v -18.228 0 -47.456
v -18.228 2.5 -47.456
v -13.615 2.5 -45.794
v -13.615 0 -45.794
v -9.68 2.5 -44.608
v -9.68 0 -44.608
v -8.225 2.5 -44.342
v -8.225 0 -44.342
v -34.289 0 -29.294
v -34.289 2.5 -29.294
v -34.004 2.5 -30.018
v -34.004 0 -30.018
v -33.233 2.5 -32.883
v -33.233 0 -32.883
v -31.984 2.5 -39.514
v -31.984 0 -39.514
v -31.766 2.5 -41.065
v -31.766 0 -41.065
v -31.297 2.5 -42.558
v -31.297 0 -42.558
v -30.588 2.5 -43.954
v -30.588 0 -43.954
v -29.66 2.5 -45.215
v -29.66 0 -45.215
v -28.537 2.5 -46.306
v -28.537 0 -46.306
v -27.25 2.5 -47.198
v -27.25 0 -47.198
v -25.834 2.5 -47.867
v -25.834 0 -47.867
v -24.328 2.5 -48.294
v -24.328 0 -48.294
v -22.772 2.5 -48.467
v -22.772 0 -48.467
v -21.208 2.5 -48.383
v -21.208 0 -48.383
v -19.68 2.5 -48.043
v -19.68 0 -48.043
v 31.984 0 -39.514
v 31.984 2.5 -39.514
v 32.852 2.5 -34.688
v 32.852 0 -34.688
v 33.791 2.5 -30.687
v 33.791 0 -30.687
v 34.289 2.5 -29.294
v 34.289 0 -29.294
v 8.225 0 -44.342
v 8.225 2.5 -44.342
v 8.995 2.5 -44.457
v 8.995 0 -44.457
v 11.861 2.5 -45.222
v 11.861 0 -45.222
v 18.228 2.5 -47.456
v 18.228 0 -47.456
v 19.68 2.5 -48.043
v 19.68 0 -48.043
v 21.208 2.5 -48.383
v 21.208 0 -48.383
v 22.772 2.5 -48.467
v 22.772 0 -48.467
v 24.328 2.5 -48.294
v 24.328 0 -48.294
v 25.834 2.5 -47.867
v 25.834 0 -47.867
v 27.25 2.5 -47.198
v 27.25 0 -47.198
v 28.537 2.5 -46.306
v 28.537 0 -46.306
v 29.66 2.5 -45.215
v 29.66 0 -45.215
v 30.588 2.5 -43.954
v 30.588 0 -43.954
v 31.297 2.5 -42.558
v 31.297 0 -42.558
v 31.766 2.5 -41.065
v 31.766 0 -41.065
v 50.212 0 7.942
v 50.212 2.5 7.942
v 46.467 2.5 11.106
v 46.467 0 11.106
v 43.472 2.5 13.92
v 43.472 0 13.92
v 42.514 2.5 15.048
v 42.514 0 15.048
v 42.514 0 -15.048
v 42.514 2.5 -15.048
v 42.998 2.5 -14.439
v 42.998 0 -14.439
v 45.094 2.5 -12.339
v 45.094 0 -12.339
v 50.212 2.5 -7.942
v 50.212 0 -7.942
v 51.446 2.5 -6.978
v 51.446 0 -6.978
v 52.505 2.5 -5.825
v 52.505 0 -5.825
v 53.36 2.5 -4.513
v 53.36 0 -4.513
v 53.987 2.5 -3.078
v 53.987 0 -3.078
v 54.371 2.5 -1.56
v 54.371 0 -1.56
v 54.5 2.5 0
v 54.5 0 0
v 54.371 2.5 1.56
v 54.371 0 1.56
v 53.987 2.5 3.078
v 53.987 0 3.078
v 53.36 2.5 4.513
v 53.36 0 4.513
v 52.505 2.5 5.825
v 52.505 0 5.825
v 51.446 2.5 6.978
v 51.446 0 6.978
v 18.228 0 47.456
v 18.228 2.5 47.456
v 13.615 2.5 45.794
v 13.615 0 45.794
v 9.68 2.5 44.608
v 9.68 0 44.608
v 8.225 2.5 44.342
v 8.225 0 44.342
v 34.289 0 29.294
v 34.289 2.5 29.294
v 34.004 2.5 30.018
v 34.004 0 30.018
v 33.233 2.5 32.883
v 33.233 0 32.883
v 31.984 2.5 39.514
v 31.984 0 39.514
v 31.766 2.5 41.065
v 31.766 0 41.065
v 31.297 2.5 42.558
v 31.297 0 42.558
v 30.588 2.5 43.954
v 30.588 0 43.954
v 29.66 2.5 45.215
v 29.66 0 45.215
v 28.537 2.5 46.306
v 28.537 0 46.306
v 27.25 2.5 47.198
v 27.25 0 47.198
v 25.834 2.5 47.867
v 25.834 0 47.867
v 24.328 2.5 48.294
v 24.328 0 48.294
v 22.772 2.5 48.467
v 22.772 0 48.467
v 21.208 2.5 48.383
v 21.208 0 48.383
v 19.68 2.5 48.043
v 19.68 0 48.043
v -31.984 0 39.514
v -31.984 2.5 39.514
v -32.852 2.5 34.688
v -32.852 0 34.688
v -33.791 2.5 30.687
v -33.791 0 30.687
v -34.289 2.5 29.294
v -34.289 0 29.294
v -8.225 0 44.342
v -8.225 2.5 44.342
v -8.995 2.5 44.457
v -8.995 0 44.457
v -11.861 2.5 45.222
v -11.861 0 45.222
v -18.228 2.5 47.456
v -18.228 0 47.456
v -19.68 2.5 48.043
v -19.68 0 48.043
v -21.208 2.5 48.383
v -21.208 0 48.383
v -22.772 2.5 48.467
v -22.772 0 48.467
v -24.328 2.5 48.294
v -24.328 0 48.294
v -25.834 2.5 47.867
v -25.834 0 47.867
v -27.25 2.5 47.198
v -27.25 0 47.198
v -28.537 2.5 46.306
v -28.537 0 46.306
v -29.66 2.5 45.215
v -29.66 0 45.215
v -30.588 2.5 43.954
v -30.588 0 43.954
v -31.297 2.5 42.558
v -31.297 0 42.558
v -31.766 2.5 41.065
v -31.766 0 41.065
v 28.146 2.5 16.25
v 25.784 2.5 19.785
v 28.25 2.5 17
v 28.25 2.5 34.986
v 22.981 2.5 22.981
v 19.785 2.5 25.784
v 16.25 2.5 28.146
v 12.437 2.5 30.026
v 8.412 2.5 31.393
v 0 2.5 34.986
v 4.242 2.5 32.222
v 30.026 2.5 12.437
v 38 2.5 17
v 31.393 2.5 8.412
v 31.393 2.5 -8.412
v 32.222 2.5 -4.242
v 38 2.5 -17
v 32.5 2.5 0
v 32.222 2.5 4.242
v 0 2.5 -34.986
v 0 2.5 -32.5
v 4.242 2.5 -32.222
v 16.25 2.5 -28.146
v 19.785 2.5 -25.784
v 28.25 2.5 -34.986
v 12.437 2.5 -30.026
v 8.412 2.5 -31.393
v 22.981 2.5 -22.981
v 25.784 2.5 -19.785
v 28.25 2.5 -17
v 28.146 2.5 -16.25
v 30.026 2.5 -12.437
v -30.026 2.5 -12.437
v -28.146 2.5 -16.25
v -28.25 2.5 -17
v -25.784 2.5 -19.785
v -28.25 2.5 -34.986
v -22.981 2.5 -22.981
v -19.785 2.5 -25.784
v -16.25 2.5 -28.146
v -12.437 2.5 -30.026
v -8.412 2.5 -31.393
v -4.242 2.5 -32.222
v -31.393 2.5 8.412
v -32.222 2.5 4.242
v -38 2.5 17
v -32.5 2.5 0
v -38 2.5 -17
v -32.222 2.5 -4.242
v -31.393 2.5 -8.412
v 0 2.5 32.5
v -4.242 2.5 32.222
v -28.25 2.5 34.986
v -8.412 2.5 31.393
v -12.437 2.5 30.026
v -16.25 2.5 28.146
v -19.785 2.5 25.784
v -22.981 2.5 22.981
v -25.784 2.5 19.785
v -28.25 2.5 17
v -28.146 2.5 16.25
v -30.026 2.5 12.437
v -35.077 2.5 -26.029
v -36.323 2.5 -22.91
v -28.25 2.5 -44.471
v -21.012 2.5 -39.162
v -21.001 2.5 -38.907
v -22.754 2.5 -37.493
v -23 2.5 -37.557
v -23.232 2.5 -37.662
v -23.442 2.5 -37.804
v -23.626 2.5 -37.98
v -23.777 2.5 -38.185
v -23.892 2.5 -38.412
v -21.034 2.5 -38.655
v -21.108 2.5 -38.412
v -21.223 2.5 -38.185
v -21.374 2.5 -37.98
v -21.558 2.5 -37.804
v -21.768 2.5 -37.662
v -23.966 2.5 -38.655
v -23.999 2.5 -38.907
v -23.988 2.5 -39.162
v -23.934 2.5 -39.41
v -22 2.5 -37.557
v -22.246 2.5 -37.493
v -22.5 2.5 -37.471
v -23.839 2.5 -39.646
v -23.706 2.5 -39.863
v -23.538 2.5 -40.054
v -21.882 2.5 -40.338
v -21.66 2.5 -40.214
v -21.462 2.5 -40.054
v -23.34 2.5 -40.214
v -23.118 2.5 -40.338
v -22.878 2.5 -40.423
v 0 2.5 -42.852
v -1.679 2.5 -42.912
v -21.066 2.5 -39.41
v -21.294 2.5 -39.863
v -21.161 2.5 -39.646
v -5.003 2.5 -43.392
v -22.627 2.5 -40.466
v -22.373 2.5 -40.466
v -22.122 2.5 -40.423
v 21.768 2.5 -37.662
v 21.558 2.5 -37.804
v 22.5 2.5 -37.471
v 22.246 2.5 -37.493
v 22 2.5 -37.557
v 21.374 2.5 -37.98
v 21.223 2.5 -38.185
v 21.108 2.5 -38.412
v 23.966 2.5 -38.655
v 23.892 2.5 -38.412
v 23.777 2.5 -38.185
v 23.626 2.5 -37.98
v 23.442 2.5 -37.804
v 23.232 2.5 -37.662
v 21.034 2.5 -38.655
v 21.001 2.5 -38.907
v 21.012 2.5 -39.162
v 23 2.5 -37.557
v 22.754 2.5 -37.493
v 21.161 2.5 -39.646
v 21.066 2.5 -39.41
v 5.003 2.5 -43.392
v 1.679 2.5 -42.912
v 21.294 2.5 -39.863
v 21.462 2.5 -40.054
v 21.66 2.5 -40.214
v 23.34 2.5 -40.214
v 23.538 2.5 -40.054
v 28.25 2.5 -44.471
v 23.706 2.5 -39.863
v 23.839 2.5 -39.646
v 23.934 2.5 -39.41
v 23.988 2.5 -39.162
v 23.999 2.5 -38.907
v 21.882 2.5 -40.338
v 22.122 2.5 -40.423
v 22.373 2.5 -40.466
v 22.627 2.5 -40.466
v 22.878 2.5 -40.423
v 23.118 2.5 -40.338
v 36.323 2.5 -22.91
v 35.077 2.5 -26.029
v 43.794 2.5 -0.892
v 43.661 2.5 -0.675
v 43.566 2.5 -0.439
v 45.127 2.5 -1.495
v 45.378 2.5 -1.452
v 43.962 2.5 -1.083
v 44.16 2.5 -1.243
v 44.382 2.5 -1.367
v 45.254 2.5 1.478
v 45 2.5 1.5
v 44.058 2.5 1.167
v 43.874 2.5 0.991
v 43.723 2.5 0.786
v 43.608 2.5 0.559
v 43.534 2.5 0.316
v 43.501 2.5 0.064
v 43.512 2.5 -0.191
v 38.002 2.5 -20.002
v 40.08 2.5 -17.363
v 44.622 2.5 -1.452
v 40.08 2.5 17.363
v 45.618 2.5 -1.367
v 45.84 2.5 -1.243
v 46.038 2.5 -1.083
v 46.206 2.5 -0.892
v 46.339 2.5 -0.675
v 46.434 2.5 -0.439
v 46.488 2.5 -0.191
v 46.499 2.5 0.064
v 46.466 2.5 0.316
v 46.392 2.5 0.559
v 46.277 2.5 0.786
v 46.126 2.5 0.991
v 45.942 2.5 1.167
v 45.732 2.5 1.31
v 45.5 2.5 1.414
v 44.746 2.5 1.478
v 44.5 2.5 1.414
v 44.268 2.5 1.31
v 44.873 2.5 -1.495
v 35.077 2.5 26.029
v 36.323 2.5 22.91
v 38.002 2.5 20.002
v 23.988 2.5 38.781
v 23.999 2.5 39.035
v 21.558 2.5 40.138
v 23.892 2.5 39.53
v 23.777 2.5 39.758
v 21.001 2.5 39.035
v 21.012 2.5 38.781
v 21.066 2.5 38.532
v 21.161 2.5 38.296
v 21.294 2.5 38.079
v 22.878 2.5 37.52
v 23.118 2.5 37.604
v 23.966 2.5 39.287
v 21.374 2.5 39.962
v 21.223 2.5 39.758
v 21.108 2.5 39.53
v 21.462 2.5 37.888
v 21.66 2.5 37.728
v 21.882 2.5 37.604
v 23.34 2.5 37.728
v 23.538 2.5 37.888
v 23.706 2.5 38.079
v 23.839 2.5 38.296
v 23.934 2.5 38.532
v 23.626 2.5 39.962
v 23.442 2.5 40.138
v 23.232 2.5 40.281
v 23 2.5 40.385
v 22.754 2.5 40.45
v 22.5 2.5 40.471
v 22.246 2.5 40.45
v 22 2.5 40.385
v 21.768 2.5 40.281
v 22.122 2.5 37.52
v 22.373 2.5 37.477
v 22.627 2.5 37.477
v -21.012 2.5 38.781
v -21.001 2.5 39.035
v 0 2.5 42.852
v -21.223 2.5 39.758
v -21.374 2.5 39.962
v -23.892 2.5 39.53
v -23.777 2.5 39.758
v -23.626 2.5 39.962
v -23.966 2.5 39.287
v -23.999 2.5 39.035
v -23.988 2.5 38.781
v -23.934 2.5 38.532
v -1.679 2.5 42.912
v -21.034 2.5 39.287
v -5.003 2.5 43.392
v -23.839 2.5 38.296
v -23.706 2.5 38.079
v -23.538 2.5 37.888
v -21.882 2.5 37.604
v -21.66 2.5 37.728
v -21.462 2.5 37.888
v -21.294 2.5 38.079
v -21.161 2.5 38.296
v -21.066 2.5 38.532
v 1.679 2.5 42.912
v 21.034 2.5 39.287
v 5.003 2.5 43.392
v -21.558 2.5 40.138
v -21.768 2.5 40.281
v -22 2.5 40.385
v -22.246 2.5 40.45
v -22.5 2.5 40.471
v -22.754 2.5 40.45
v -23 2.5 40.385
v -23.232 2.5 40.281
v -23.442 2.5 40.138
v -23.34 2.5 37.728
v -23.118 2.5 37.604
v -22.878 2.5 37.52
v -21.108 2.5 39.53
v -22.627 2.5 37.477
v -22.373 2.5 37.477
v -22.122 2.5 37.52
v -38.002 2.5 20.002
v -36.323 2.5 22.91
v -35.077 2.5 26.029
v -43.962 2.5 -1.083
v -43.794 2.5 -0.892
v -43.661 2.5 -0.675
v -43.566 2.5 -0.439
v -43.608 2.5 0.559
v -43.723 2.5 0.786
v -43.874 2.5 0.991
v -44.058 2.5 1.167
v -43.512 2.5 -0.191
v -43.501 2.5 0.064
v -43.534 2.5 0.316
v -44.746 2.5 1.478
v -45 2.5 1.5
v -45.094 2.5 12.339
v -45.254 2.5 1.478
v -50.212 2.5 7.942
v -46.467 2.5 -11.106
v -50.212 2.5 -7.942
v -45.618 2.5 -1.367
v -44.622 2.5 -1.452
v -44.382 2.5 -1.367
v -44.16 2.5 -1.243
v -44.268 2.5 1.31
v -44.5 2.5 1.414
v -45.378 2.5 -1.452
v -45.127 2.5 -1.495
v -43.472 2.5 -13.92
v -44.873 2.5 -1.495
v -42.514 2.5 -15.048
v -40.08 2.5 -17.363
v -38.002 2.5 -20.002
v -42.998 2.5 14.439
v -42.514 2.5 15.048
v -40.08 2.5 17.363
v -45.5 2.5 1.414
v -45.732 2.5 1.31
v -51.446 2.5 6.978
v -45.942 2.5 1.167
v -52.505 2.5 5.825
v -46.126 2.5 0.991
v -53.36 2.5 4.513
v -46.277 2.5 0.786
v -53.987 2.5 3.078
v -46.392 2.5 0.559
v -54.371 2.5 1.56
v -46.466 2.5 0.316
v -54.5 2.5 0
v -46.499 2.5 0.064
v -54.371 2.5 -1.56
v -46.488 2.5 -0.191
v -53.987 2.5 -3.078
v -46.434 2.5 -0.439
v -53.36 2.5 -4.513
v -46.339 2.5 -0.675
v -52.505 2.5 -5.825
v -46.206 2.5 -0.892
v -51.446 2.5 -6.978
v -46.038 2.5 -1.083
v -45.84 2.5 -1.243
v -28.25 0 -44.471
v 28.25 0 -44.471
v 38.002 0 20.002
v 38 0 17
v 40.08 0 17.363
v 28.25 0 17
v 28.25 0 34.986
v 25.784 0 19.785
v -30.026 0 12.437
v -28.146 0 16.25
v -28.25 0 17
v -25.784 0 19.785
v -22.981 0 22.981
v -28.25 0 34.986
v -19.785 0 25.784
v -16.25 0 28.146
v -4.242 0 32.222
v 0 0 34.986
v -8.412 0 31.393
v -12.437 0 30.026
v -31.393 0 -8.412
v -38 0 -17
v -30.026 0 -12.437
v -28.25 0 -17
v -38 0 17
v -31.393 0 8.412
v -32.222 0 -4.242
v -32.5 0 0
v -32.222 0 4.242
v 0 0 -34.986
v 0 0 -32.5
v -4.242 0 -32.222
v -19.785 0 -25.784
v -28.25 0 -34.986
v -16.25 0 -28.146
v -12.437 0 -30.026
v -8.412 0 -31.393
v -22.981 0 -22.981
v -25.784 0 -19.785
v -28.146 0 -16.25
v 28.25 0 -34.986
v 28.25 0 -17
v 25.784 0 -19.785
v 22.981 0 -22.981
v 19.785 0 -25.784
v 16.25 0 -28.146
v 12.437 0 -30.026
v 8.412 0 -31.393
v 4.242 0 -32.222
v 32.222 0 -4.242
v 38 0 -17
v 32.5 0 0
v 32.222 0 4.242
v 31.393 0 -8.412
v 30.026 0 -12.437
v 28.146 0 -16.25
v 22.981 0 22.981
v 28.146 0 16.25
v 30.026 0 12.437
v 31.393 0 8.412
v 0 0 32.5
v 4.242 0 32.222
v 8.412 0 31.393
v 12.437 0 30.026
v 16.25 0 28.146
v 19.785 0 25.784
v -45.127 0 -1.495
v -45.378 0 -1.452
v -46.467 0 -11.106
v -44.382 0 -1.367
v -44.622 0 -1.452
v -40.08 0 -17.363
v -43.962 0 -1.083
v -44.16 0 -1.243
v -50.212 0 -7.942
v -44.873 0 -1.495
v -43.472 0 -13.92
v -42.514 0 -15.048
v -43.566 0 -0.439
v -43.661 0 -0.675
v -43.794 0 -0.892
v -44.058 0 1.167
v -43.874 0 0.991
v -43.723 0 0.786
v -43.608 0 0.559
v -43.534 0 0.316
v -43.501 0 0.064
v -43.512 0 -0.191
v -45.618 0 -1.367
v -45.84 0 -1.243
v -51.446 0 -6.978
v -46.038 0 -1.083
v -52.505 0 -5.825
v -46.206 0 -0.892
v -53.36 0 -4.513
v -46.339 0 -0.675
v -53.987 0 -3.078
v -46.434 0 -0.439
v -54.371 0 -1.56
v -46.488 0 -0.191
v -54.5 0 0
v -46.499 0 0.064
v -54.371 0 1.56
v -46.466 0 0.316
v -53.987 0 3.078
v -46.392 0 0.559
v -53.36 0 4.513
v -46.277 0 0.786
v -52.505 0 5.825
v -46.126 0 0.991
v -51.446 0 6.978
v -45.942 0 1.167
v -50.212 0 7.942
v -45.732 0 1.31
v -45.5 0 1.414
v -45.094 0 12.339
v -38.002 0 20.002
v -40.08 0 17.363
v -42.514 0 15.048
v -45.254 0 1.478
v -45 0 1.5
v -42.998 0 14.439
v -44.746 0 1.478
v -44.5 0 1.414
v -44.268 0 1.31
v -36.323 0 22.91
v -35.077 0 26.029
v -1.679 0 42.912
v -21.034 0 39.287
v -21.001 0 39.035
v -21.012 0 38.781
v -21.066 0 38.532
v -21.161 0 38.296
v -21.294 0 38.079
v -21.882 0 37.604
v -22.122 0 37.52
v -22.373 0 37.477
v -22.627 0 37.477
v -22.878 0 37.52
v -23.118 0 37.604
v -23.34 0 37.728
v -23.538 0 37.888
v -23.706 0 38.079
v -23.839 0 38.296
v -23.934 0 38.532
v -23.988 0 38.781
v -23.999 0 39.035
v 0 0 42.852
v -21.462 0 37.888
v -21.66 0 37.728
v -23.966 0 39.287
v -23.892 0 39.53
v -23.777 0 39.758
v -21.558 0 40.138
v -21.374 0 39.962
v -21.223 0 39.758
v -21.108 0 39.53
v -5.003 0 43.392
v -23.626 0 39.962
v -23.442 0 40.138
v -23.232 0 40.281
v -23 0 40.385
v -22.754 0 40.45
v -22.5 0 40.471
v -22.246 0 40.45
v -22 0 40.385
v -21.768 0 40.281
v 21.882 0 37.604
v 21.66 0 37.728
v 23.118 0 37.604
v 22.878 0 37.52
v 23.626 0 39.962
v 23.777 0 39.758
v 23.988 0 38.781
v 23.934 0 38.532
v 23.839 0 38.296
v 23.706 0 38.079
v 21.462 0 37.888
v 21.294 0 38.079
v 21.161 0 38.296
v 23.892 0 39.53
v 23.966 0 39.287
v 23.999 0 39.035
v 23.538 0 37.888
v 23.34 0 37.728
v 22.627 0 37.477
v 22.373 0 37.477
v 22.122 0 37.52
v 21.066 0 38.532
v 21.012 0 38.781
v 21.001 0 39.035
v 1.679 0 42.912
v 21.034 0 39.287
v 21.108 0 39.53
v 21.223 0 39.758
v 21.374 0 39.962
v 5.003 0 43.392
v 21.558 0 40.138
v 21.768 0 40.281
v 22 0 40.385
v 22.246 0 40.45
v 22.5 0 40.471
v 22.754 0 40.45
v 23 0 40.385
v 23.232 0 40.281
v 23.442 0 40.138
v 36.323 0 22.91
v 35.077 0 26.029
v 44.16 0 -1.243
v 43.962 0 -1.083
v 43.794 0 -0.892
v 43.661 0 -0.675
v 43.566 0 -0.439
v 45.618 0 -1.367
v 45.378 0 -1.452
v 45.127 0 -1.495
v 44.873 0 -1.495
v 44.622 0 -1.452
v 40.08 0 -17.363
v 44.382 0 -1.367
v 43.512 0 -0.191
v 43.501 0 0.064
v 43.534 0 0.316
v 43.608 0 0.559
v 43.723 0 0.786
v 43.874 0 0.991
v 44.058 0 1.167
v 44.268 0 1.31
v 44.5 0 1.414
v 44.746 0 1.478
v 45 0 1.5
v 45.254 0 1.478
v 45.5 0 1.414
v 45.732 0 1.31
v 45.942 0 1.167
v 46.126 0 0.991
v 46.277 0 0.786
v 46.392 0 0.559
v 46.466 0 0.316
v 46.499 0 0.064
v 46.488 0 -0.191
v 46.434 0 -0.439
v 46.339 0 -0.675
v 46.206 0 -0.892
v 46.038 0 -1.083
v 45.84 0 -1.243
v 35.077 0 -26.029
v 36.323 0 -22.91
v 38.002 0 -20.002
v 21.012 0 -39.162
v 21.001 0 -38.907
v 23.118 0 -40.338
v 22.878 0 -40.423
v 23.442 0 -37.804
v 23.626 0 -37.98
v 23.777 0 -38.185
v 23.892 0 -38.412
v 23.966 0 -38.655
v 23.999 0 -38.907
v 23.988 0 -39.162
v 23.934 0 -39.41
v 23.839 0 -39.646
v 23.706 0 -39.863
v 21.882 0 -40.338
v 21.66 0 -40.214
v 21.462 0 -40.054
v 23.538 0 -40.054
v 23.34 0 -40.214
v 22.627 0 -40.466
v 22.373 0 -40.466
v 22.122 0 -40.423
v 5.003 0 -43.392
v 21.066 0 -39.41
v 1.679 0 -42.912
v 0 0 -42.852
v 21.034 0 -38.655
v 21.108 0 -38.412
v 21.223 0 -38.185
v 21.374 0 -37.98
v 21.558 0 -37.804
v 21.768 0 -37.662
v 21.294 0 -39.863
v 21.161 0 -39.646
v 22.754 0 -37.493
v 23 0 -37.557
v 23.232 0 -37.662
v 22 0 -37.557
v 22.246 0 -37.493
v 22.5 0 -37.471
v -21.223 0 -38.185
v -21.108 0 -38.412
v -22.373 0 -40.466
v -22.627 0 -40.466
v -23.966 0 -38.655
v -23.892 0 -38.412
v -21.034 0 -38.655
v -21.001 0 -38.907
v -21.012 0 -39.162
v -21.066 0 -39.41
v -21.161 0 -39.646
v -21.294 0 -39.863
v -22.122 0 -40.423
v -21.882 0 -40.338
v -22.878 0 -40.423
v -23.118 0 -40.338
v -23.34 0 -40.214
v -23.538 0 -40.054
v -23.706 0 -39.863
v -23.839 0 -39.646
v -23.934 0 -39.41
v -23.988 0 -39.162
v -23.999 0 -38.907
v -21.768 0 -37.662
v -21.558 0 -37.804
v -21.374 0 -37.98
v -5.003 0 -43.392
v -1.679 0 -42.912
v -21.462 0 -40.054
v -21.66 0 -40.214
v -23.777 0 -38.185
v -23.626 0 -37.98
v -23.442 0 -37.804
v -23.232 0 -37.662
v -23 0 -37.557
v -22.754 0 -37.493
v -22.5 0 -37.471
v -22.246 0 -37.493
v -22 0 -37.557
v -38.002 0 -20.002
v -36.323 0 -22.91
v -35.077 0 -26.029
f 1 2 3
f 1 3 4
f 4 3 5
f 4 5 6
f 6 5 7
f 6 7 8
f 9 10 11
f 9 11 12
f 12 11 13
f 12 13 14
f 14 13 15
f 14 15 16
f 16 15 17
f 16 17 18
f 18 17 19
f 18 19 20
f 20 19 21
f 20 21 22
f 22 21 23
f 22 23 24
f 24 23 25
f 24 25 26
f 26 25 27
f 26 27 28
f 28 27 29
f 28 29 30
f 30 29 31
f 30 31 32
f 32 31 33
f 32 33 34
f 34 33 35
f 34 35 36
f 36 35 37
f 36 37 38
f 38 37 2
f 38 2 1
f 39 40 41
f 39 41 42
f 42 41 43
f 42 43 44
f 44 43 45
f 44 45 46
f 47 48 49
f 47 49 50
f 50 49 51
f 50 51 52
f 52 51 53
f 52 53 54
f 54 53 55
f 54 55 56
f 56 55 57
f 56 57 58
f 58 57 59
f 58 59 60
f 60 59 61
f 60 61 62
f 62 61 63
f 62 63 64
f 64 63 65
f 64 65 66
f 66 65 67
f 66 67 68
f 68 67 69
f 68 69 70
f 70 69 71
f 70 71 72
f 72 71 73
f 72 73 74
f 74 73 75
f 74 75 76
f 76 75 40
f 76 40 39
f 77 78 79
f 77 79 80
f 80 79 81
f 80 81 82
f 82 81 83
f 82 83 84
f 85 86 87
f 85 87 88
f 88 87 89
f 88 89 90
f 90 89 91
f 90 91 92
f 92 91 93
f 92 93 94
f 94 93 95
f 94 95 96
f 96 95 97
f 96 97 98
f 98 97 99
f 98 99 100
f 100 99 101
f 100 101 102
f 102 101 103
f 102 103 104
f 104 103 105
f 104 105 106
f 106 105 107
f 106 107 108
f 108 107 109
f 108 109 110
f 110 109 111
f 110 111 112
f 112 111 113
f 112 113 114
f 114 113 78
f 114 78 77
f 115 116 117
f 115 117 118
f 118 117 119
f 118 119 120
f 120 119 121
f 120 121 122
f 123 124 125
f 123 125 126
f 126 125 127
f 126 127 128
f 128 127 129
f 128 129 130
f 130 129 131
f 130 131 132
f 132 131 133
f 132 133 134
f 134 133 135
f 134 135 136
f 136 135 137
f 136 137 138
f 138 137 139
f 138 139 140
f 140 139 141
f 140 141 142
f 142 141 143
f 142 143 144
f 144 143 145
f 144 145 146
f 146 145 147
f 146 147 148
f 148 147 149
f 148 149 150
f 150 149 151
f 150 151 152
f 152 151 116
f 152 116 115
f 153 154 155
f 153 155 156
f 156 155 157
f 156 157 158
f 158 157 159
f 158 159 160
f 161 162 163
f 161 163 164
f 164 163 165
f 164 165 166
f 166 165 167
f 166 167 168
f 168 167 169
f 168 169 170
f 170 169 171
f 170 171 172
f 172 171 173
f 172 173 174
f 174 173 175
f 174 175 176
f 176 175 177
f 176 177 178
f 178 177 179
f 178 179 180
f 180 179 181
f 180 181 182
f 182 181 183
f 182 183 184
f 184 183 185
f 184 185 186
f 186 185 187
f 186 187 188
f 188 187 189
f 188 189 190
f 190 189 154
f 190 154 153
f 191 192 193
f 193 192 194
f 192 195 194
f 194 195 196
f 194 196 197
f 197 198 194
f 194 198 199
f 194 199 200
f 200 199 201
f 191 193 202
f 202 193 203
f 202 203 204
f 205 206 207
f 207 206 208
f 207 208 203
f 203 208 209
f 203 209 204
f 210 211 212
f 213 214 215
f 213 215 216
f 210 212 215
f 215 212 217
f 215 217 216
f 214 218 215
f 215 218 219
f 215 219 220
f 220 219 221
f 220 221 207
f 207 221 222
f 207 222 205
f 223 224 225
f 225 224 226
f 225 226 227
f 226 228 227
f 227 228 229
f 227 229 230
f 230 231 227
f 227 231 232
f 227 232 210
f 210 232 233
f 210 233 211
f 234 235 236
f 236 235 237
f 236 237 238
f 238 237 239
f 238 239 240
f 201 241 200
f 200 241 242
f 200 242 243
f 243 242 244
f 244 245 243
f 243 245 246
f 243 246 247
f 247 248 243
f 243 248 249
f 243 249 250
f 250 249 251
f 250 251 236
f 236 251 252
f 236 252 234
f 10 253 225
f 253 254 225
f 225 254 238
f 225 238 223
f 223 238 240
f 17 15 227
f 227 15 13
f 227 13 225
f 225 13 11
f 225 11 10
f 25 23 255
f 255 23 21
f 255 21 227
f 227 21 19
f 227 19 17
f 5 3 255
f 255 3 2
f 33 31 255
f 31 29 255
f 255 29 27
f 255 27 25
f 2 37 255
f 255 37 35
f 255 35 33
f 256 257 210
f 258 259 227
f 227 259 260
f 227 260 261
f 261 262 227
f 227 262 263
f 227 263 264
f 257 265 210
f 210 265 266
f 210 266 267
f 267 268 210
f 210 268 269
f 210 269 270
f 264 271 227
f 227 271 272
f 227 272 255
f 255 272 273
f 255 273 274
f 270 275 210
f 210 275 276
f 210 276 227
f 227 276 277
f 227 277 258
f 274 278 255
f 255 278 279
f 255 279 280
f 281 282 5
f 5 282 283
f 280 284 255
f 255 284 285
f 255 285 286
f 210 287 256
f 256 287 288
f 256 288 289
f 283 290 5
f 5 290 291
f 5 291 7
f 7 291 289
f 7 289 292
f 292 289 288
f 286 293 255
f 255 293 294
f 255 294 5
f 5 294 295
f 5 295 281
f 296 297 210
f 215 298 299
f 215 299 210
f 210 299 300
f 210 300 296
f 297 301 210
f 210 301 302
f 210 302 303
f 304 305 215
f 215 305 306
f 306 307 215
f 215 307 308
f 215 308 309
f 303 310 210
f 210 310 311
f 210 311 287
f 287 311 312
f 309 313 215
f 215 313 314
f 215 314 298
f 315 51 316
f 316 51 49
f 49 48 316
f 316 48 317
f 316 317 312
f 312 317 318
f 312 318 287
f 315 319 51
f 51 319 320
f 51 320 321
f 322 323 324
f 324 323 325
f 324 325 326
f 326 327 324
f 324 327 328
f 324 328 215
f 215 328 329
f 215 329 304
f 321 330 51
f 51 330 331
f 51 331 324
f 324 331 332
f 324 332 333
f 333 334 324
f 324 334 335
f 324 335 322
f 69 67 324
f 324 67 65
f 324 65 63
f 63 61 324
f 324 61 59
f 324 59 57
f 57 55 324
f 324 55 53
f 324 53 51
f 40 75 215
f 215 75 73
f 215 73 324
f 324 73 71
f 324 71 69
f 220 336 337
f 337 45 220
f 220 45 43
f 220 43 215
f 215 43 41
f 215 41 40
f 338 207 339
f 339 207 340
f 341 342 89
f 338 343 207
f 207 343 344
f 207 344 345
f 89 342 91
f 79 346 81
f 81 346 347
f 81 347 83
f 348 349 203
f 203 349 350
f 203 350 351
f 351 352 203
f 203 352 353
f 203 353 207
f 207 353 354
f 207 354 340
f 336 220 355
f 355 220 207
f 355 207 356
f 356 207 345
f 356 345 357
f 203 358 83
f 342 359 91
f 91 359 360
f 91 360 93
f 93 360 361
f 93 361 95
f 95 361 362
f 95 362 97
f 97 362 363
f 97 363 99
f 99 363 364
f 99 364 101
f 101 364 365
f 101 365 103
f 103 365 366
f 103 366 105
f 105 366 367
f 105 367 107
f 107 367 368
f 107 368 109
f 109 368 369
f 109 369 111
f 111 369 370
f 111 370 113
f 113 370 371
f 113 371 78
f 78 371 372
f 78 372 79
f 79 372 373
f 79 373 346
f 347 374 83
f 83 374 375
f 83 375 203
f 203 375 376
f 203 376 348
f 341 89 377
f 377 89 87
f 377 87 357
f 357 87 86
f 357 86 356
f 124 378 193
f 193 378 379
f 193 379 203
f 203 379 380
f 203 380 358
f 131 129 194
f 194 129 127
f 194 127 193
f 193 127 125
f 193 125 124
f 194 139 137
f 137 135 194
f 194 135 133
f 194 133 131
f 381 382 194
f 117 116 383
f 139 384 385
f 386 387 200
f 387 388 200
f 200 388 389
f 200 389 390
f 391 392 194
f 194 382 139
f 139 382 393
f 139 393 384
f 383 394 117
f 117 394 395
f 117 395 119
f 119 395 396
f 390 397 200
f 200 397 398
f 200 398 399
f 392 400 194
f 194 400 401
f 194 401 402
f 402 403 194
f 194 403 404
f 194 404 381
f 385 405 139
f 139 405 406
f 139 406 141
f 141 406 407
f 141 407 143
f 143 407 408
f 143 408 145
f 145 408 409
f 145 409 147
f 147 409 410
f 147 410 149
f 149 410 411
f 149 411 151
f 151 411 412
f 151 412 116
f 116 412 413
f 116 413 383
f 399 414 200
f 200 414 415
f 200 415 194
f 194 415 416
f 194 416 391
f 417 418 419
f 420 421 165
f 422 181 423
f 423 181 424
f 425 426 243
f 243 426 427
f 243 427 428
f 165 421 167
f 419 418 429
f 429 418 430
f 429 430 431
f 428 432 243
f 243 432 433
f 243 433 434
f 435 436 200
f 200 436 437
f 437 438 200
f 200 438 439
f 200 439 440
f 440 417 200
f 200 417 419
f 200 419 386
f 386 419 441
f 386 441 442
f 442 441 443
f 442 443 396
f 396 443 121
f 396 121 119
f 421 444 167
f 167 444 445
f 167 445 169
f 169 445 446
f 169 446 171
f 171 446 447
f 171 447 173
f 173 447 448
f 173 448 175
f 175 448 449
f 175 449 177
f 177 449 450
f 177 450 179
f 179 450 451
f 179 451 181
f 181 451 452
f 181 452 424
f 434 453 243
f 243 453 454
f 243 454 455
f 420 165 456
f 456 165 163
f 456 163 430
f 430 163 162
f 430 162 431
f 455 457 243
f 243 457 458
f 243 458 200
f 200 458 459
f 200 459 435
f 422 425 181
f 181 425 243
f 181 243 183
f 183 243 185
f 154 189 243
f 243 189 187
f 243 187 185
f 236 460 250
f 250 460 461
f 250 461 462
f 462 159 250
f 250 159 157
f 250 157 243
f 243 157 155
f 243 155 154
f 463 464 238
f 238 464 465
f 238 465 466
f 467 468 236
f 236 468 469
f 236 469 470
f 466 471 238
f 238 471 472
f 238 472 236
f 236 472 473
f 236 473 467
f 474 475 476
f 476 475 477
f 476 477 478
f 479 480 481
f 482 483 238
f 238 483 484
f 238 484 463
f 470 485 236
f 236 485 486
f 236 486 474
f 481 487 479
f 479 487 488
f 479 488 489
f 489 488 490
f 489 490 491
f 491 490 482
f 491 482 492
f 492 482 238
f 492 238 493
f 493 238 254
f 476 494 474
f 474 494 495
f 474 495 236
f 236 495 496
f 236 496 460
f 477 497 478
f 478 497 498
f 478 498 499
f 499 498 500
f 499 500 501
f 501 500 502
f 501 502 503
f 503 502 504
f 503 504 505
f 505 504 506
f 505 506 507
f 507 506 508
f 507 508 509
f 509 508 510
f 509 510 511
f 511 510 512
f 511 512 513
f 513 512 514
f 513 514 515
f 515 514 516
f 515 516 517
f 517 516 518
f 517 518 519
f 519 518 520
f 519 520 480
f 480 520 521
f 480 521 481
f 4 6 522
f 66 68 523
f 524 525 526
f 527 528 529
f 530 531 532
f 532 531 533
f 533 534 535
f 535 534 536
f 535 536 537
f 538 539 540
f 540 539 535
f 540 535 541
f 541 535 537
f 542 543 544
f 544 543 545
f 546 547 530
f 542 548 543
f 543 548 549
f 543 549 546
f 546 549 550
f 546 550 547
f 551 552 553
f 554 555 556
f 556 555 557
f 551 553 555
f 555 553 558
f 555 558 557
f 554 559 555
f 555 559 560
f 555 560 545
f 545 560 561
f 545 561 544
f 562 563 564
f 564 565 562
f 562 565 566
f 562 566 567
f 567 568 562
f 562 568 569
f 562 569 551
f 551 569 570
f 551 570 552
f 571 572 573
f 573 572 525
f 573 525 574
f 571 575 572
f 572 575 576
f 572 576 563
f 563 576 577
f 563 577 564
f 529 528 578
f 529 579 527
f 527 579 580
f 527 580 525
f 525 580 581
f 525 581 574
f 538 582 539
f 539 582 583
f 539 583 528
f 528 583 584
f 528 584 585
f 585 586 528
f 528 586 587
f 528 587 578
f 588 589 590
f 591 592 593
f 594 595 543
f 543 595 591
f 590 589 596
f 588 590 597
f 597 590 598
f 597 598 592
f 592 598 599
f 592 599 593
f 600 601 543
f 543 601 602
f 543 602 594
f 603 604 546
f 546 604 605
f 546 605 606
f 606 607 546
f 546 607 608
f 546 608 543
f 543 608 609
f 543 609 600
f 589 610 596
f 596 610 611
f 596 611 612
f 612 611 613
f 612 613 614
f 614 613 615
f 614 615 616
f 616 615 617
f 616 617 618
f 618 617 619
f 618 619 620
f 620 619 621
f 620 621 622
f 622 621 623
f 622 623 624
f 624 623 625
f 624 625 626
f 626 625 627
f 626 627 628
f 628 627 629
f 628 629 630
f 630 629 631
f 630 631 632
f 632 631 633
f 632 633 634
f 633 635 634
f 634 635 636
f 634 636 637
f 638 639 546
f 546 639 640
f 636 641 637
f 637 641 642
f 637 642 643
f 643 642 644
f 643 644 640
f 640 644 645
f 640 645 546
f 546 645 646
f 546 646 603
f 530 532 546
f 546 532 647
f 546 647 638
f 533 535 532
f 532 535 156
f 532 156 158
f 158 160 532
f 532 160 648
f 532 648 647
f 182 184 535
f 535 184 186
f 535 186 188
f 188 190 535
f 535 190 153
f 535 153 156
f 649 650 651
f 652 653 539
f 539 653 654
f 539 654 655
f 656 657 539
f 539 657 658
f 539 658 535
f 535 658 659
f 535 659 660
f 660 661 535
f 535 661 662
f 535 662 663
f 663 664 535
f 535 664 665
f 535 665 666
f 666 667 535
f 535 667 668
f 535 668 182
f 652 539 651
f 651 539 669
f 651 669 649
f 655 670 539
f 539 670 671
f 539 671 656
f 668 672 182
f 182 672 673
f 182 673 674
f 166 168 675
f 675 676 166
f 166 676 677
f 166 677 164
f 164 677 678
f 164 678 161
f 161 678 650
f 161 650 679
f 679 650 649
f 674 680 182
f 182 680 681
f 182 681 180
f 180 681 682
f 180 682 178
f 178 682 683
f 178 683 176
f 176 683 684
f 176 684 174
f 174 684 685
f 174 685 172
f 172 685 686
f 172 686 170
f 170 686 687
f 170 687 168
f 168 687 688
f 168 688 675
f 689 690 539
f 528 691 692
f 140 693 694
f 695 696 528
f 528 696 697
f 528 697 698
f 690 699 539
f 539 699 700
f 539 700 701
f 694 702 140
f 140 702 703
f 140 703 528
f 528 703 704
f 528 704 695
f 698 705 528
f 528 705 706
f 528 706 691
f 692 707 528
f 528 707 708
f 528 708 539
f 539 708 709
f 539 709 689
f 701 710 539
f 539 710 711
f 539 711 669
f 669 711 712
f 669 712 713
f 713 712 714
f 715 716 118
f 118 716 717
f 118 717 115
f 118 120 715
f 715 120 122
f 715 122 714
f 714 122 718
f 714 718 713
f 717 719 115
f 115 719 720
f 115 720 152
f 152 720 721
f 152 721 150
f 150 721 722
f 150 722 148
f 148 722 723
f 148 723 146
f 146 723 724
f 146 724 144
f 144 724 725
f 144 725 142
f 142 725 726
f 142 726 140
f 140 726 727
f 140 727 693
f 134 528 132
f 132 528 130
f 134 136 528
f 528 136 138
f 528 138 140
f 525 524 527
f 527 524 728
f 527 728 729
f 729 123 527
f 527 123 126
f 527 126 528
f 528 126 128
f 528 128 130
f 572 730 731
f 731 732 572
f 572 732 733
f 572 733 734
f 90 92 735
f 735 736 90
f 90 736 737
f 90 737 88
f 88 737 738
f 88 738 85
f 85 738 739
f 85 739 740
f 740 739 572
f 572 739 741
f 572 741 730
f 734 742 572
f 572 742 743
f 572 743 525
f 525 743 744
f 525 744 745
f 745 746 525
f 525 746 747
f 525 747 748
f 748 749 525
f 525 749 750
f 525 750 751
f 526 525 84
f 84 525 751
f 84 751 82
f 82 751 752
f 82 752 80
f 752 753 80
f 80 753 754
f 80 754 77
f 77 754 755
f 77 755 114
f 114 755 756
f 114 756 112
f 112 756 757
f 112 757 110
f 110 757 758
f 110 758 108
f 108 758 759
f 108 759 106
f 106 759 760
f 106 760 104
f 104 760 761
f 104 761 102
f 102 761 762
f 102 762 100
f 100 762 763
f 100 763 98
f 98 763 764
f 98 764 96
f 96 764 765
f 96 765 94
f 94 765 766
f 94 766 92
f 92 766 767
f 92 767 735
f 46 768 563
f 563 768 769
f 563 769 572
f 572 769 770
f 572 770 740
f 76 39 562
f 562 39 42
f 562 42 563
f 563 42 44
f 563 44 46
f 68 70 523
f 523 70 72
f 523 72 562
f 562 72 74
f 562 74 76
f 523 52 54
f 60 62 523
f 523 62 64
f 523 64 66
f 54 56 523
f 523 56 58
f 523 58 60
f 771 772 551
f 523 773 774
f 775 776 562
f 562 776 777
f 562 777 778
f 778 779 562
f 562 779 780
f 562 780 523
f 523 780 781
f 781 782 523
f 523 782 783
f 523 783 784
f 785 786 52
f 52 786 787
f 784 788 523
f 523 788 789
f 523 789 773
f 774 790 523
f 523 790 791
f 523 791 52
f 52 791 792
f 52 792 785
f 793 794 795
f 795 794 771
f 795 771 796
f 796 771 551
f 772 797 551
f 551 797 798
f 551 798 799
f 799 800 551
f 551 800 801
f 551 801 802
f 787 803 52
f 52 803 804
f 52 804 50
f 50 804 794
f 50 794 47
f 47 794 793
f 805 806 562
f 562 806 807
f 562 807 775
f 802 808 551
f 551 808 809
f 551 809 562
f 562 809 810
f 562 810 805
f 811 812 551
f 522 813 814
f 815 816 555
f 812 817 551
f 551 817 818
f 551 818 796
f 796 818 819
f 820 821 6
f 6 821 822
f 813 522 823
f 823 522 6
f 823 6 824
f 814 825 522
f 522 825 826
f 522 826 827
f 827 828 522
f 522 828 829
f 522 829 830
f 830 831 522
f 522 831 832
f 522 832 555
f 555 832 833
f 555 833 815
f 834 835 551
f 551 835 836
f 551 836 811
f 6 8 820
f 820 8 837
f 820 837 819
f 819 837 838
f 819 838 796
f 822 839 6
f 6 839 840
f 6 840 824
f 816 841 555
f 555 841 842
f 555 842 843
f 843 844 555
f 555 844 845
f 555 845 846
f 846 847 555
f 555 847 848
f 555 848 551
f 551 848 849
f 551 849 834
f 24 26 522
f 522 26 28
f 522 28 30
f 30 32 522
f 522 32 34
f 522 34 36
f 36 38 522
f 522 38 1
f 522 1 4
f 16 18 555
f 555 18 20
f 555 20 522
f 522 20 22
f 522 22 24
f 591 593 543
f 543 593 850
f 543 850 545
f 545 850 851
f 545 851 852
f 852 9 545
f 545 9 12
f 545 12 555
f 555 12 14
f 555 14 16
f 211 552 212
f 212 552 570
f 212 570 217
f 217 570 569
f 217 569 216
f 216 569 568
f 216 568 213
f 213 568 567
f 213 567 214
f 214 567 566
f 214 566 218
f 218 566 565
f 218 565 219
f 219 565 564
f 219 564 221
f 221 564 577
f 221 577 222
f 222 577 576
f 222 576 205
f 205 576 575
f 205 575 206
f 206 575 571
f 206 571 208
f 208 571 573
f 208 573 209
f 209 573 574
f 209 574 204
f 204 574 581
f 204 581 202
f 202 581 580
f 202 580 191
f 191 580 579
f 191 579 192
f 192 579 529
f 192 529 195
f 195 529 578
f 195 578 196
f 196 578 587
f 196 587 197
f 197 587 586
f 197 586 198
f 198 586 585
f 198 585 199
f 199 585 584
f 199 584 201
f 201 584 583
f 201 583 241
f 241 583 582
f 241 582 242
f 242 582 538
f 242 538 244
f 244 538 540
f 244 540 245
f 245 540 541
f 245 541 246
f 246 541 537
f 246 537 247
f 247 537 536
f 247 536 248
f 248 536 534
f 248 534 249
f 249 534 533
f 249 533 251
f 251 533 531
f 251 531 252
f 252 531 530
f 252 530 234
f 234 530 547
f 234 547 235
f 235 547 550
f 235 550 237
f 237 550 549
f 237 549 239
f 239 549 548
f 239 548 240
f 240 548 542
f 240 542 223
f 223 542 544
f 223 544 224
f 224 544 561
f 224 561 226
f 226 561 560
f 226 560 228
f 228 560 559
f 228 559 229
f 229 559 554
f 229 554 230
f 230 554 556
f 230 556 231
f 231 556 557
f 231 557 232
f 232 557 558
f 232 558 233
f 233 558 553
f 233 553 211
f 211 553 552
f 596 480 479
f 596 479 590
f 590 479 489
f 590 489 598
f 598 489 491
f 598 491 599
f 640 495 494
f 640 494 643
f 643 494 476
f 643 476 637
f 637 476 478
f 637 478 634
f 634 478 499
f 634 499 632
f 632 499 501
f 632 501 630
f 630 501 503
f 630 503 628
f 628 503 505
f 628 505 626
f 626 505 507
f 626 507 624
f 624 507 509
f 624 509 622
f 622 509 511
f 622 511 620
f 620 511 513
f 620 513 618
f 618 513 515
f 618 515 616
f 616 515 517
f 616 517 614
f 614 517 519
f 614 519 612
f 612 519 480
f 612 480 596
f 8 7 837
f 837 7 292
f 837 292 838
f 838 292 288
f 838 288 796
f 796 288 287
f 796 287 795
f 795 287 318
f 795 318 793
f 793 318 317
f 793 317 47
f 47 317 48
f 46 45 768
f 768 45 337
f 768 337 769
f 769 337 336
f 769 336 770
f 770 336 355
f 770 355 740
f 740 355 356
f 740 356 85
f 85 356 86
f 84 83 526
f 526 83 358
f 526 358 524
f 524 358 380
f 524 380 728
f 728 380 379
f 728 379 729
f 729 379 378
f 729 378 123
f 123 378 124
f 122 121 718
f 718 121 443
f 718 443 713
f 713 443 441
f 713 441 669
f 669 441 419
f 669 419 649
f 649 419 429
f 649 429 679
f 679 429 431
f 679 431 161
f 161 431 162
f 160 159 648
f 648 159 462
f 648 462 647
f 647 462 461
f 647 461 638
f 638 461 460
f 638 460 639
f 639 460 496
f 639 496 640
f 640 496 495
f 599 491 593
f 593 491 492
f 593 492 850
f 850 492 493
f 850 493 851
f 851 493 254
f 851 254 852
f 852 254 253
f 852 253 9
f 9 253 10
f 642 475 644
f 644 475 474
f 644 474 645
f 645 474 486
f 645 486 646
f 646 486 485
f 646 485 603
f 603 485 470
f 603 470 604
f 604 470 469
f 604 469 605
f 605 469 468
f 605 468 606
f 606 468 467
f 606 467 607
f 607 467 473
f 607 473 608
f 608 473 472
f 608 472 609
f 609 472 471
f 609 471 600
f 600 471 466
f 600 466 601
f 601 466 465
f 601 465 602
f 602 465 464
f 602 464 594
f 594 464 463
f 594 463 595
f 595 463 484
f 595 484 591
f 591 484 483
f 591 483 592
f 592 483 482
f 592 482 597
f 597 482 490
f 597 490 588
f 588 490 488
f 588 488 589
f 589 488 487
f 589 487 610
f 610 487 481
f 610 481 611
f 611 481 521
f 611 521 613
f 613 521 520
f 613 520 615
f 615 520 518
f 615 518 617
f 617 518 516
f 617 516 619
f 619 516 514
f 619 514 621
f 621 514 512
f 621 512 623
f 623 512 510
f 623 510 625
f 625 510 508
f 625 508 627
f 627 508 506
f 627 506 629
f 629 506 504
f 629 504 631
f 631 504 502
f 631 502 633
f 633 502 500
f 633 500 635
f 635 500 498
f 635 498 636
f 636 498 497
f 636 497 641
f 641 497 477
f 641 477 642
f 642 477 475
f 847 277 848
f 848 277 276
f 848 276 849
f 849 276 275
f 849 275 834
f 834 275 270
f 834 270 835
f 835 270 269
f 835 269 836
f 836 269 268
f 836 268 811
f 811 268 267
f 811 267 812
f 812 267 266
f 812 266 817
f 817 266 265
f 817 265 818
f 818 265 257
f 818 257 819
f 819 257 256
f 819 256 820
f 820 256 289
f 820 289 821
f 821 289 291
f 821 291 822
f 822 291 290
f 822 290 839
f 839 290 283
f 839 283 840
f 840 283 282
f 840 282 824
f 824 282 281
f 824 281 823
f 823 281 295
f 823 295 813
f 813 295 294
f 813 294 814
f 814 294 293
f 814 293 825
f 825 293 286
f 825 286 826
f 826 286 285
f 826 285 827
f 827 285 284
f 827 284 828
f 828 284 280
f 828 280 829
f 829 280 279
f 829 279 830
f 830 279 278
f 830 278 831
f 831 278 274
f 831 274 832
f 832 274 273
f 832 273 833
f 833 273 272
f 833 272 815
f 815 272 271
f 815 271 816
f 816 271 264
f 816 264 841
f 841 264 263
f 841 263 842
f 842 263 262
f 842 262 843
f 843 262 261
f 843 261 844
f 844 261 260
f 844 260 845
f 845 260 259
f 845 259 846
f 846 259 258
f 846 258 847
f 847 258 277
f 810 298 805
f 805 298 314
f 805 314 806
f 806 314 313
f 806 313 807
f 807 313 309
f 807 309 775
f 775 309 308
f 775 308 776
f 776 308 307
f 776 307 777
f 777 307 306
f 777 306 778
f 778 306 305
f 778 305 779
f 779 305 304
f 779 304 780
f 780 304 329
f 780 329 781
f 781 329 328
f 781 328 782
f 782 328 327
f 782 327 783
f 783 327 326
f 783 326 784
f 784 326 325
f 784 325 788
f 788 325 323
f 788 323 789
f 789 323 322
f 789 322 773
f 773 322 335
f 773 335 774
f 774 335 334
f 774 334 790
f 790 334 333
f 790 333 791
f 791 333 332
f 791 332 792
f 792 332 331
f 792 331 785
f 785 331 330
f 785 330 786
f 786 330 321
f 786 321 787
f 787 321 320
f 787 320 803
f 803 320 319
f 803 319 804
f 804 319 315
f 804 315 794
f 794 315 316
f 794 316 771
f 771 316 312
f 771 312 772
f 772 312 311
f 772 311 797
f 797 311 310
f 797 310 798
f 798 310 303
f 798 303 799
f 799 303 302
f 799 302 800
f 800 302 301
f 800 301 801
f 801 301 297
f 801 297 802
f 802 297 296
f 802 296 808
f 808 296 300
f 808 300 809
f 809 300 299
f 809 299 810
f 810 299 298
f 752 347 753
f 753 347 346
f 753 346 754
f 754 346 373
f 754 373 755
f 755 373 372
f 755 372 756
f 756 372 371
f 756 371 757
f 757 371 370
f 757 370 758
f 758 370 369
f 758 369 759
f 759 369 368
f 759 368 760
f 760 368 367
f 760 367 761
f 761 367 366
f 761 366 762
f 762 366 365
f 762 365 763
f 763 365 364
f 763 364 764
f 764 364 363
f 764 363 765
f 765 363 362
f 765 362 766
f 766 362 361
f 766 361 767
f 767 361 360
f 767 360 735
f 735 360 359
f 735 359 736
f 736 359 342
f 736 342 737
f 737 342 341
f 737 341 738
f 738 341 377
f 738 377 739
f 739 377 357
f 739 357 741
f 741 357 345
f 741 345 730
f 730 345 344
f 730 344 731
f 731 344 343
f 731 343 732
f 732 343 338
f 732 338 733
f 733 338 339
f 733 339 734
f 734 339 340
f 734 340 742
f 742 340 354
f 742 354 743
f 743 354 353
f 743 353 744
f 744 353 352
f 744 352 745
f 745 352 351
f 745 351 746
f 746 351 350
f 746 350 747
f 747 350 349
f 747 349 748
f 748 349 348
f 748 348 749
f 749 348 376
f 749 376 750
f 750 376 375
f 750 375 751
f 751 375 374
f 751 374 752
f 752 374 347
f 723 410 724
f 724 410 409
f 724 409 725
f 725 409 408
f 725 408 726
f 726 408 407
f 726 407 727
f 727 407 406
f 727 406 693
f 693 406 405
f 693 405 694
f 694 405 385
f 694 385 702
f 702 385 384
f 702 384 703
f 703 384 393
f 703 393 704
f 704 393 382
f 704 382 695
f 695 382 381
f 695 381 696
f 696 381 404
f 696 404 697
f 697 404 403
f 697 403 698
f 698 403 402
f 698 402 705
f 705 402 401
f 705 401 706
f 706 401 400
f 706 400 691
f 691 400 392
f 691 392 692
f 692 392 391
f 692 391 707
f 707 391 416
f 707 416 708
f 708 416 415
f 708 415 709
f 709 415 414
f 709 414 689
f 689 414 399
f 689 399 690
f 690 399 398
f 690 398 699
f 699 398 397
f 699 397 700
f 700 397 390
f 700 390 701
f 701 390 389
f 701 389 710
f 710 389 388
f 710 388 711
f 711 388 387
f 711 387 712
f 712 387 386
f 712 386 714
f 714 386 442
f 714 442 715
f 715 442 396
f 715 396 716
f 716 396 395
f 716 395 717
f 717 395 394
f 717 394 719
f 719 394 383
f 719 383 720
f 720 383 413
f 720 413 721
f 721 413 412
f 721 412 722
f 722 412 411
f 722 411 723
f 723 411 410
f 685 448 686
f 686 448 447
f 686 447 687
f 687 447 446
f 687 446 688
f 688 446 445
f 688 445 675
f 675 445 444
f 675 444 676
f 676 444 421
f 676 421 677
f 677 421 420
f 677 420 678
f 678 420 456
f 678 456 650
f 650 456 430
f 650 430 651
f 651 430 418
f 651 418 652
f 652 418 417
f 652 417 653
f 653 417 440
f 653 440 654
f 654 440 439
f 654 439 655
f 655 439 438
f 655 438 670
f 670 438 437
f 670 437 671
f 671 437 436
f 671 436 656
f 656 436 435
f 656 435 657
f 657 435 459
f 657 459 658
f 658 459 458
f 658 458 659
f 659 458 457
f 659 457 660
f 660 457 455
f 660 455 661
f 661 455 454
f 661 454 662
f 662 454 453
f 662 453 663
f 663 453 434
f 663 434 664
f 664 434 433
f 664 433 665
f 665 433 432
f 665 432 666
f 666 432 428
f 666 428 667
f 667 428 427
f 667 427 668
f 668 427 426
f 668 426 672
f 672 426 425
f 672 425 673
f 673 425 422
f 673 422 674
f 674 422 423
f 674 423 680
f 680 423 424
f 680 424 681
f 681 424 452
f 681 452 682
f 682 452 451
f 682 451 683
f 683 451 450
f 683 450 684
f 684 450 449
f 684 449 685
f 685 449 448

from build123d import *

# Parameters (mm, degrees)
SKETCH1_R           = 45
SKETCH1_R_2         = 32.5
BOSS_EXTRUDE2_DEPTH = 2.5
BOSS_EXTRUDE4_START = -2.5
BOSS_EXTRUDE4_DEPTH = 2.5
CIRPATTERN1_COUNT   = 6
CUT_EXTRUDE2_DEPTH  = 2.5
SKETCH6_R           = 1.5
CUT_EXTRUDE3_DEPTH  = 5


with BuildPart() as part:
    # Sketch1 → Boss-Extrude2 (new body)
    with BuildSketch(Plane(origin=(0, 0, 0), x_dir=(1, 0, 0), z_dir=(0, 1, 0))):
        with Locations(Location((0, 0, 0), (0, 0, 270))):
            Circle(SKETCH1_R)
        with Locations(Location((0, 0, 0), (0, 0, 270))):
            Circle(SKETCH1_R_2, mode=Mode.SUBTRACT)
    extrude(amount=BOSS_EXTRUDE2_DEPTH)

    # Sketch2 → Boss-Extrude4 (add)
    with BuildSketch(Plane(origin=(0, 2.5, 0), x_dir=(1, 0, 0), z_dir=(0, 1, 0)).offset(BOSS_EXTRUDE4_START)):
        with BuildLine():
            ThreePointArc((-42.23454554, 15.532004475), (-45, 0), (-42.23454554, -15.532004475))
            add(Edge.make_bspline(
                [(-50.212380227, -7.942360629), (-45.3159648, -11.95963121), (-42.656686571, -14.489512492), (-42.23454554, -15.532004475)],
                knots=[0.089311832, 0.089311832, 0.089311832, 0.089311832, 1, 1, 1, 1], degree=3))
            ThreePointArc((-50.212380227, -7.942360629), (-54.5, 0), (-50.212380227, 7.942360629))
            add(Edge.make_bspline(
                [(-50.212380227, 7.942360629), (-45.3159648, 11.95963121), (-42.656686571, 14.489512492), (-42.23454554, 15.532004475)],
                knots=[0.089311832, 0.089311832, 0.089311832, 0.089311832, 1, 1, 1, 1], degree=3))
        make_face()
    boss_extrude4 = extrude(amount=BOSS_EXTRUDE4_DEPTH)

    # CirPattern1: Boss-Extrude4 ×6 about axis
    cirpattern1_axis = Axis((0, 2.5, 0), (0, 1, 0))
    for i in range(1, CIRPATTERN1_COUNT):
        add(boss_extrude4.rotate(cirpattern1_axis, i * 360 / CIRPATTERN1_COUNT))

    # Sketch5 → Cut-Extrude2 (cut)
    with BuildSketch(Plane(origin=(0, 2.5, 0), x_dir=(1, 0, 0), z_dir=(0, 1, 0))):
        with BuildLine():
            Line((-8.22468756, 44.342191593), (0, 46.65782144))
            Line((0, 46.65782144), (8.22468756, 44.342191593))
            ThreePointArc((8.22468756, 44.342191593), (0, 42.851652617), (-8.22468756, 44.342191593))
        make_face()
        with BuildLine():
            Line((40.406858652, 23.32891072), (42.513808159, 15.048307431))
            ThreePointArc((42.513808159, 15.048307431), (37.11061976, 21.425826308), (34.289120599, 29.293884161))
            Line((34.289120599, 29.293884161), (40.406858652, 23.32891072))
        make_face()
        with BuildLine():
            Line((40.406858652, -23.32891072), (34.289120599, -29.293884161))
            ThreePointArc((34.289120599, -29.293884161), (37.11061976, -21.425826308), (42.513808159, -15.048307431))
            Line((42.513808159, -15.048307431), (40.406858652, -23.32891072))
        make_face()
        with BuildLine():
            Line((0, -46.65782144), (-8.22468756, -44.342191593))
            ThreePointArc((-8.22468756, -44.342191593), (0, -42.851652617), (8.22468756, -44.342191593))
            Line((8.22468756, -44.342191593), (0, -46.65782144))
        make_face()
        with BuildLine():
            Line((-40.406858652, -23.32891072), (-42.513808159, -15.048307431))
            ThreePointArc((-42.513808159, -15.048307431), (-37.11061976, -21.425826308), (-34.289120599, -29.293884161))
            Line((-34.289120599, -29.293884161), (-40.406858652, -23.32891072))
        make_face()
        with BuildLine():
            Line((-40.406858652, 23.32891072), (-34.289120599, 29.293884161))
            ThreePointArc((-34.289120599, 29.293884161), (-37.11061976, 21.425826308), (-42.513808159, 15.048307431))
            Line((-42.513808159, 15.048307431), (-40.406858652, 23.32891072))
        make_face()
    extrude(amount=-CUT_EXTRUDE2_DEPTH, mode=Mode.SUBTRACT)

    # Sketch6 → Cut-Extrude3 (cut, symmetric)
    with BuildSketch(Plane(origin=(0, 2.5, 0), x_dir=(1, 0, 0), z_dir=(0, 1, 0))):
        with Locations(Location((-45, 0, 0), (0, 0, 270))):
            Circle(SKETCH6_R)
        with Locations(Location((-22.5, 38.97114317, 0), (0, 0, 270))):
            Circle(SKETCH6_R)
        with Locations(Location((22.5, 38.97114317, 0), (0, 0, 270))):
            Circle(SKETCH6_R)
        with Locations(Location((45, 0, 0), (0, 0, 270))):
            Circle(SKETCH6_R)
        with Locations(Location((22.5, -38.97114317, 0), (0, 0, 270))):
            Circle(SKETCH6_R)
        with Locations(Location((-22.5, -38.97114317, 0), (0, 0, 270))):
            Circle(SKETCH6_R)
    extrude(amount=CUT_EXTRUDE3_DEPTH, both=True, mode=Mode.SUBTRACT)


solid = part.part
